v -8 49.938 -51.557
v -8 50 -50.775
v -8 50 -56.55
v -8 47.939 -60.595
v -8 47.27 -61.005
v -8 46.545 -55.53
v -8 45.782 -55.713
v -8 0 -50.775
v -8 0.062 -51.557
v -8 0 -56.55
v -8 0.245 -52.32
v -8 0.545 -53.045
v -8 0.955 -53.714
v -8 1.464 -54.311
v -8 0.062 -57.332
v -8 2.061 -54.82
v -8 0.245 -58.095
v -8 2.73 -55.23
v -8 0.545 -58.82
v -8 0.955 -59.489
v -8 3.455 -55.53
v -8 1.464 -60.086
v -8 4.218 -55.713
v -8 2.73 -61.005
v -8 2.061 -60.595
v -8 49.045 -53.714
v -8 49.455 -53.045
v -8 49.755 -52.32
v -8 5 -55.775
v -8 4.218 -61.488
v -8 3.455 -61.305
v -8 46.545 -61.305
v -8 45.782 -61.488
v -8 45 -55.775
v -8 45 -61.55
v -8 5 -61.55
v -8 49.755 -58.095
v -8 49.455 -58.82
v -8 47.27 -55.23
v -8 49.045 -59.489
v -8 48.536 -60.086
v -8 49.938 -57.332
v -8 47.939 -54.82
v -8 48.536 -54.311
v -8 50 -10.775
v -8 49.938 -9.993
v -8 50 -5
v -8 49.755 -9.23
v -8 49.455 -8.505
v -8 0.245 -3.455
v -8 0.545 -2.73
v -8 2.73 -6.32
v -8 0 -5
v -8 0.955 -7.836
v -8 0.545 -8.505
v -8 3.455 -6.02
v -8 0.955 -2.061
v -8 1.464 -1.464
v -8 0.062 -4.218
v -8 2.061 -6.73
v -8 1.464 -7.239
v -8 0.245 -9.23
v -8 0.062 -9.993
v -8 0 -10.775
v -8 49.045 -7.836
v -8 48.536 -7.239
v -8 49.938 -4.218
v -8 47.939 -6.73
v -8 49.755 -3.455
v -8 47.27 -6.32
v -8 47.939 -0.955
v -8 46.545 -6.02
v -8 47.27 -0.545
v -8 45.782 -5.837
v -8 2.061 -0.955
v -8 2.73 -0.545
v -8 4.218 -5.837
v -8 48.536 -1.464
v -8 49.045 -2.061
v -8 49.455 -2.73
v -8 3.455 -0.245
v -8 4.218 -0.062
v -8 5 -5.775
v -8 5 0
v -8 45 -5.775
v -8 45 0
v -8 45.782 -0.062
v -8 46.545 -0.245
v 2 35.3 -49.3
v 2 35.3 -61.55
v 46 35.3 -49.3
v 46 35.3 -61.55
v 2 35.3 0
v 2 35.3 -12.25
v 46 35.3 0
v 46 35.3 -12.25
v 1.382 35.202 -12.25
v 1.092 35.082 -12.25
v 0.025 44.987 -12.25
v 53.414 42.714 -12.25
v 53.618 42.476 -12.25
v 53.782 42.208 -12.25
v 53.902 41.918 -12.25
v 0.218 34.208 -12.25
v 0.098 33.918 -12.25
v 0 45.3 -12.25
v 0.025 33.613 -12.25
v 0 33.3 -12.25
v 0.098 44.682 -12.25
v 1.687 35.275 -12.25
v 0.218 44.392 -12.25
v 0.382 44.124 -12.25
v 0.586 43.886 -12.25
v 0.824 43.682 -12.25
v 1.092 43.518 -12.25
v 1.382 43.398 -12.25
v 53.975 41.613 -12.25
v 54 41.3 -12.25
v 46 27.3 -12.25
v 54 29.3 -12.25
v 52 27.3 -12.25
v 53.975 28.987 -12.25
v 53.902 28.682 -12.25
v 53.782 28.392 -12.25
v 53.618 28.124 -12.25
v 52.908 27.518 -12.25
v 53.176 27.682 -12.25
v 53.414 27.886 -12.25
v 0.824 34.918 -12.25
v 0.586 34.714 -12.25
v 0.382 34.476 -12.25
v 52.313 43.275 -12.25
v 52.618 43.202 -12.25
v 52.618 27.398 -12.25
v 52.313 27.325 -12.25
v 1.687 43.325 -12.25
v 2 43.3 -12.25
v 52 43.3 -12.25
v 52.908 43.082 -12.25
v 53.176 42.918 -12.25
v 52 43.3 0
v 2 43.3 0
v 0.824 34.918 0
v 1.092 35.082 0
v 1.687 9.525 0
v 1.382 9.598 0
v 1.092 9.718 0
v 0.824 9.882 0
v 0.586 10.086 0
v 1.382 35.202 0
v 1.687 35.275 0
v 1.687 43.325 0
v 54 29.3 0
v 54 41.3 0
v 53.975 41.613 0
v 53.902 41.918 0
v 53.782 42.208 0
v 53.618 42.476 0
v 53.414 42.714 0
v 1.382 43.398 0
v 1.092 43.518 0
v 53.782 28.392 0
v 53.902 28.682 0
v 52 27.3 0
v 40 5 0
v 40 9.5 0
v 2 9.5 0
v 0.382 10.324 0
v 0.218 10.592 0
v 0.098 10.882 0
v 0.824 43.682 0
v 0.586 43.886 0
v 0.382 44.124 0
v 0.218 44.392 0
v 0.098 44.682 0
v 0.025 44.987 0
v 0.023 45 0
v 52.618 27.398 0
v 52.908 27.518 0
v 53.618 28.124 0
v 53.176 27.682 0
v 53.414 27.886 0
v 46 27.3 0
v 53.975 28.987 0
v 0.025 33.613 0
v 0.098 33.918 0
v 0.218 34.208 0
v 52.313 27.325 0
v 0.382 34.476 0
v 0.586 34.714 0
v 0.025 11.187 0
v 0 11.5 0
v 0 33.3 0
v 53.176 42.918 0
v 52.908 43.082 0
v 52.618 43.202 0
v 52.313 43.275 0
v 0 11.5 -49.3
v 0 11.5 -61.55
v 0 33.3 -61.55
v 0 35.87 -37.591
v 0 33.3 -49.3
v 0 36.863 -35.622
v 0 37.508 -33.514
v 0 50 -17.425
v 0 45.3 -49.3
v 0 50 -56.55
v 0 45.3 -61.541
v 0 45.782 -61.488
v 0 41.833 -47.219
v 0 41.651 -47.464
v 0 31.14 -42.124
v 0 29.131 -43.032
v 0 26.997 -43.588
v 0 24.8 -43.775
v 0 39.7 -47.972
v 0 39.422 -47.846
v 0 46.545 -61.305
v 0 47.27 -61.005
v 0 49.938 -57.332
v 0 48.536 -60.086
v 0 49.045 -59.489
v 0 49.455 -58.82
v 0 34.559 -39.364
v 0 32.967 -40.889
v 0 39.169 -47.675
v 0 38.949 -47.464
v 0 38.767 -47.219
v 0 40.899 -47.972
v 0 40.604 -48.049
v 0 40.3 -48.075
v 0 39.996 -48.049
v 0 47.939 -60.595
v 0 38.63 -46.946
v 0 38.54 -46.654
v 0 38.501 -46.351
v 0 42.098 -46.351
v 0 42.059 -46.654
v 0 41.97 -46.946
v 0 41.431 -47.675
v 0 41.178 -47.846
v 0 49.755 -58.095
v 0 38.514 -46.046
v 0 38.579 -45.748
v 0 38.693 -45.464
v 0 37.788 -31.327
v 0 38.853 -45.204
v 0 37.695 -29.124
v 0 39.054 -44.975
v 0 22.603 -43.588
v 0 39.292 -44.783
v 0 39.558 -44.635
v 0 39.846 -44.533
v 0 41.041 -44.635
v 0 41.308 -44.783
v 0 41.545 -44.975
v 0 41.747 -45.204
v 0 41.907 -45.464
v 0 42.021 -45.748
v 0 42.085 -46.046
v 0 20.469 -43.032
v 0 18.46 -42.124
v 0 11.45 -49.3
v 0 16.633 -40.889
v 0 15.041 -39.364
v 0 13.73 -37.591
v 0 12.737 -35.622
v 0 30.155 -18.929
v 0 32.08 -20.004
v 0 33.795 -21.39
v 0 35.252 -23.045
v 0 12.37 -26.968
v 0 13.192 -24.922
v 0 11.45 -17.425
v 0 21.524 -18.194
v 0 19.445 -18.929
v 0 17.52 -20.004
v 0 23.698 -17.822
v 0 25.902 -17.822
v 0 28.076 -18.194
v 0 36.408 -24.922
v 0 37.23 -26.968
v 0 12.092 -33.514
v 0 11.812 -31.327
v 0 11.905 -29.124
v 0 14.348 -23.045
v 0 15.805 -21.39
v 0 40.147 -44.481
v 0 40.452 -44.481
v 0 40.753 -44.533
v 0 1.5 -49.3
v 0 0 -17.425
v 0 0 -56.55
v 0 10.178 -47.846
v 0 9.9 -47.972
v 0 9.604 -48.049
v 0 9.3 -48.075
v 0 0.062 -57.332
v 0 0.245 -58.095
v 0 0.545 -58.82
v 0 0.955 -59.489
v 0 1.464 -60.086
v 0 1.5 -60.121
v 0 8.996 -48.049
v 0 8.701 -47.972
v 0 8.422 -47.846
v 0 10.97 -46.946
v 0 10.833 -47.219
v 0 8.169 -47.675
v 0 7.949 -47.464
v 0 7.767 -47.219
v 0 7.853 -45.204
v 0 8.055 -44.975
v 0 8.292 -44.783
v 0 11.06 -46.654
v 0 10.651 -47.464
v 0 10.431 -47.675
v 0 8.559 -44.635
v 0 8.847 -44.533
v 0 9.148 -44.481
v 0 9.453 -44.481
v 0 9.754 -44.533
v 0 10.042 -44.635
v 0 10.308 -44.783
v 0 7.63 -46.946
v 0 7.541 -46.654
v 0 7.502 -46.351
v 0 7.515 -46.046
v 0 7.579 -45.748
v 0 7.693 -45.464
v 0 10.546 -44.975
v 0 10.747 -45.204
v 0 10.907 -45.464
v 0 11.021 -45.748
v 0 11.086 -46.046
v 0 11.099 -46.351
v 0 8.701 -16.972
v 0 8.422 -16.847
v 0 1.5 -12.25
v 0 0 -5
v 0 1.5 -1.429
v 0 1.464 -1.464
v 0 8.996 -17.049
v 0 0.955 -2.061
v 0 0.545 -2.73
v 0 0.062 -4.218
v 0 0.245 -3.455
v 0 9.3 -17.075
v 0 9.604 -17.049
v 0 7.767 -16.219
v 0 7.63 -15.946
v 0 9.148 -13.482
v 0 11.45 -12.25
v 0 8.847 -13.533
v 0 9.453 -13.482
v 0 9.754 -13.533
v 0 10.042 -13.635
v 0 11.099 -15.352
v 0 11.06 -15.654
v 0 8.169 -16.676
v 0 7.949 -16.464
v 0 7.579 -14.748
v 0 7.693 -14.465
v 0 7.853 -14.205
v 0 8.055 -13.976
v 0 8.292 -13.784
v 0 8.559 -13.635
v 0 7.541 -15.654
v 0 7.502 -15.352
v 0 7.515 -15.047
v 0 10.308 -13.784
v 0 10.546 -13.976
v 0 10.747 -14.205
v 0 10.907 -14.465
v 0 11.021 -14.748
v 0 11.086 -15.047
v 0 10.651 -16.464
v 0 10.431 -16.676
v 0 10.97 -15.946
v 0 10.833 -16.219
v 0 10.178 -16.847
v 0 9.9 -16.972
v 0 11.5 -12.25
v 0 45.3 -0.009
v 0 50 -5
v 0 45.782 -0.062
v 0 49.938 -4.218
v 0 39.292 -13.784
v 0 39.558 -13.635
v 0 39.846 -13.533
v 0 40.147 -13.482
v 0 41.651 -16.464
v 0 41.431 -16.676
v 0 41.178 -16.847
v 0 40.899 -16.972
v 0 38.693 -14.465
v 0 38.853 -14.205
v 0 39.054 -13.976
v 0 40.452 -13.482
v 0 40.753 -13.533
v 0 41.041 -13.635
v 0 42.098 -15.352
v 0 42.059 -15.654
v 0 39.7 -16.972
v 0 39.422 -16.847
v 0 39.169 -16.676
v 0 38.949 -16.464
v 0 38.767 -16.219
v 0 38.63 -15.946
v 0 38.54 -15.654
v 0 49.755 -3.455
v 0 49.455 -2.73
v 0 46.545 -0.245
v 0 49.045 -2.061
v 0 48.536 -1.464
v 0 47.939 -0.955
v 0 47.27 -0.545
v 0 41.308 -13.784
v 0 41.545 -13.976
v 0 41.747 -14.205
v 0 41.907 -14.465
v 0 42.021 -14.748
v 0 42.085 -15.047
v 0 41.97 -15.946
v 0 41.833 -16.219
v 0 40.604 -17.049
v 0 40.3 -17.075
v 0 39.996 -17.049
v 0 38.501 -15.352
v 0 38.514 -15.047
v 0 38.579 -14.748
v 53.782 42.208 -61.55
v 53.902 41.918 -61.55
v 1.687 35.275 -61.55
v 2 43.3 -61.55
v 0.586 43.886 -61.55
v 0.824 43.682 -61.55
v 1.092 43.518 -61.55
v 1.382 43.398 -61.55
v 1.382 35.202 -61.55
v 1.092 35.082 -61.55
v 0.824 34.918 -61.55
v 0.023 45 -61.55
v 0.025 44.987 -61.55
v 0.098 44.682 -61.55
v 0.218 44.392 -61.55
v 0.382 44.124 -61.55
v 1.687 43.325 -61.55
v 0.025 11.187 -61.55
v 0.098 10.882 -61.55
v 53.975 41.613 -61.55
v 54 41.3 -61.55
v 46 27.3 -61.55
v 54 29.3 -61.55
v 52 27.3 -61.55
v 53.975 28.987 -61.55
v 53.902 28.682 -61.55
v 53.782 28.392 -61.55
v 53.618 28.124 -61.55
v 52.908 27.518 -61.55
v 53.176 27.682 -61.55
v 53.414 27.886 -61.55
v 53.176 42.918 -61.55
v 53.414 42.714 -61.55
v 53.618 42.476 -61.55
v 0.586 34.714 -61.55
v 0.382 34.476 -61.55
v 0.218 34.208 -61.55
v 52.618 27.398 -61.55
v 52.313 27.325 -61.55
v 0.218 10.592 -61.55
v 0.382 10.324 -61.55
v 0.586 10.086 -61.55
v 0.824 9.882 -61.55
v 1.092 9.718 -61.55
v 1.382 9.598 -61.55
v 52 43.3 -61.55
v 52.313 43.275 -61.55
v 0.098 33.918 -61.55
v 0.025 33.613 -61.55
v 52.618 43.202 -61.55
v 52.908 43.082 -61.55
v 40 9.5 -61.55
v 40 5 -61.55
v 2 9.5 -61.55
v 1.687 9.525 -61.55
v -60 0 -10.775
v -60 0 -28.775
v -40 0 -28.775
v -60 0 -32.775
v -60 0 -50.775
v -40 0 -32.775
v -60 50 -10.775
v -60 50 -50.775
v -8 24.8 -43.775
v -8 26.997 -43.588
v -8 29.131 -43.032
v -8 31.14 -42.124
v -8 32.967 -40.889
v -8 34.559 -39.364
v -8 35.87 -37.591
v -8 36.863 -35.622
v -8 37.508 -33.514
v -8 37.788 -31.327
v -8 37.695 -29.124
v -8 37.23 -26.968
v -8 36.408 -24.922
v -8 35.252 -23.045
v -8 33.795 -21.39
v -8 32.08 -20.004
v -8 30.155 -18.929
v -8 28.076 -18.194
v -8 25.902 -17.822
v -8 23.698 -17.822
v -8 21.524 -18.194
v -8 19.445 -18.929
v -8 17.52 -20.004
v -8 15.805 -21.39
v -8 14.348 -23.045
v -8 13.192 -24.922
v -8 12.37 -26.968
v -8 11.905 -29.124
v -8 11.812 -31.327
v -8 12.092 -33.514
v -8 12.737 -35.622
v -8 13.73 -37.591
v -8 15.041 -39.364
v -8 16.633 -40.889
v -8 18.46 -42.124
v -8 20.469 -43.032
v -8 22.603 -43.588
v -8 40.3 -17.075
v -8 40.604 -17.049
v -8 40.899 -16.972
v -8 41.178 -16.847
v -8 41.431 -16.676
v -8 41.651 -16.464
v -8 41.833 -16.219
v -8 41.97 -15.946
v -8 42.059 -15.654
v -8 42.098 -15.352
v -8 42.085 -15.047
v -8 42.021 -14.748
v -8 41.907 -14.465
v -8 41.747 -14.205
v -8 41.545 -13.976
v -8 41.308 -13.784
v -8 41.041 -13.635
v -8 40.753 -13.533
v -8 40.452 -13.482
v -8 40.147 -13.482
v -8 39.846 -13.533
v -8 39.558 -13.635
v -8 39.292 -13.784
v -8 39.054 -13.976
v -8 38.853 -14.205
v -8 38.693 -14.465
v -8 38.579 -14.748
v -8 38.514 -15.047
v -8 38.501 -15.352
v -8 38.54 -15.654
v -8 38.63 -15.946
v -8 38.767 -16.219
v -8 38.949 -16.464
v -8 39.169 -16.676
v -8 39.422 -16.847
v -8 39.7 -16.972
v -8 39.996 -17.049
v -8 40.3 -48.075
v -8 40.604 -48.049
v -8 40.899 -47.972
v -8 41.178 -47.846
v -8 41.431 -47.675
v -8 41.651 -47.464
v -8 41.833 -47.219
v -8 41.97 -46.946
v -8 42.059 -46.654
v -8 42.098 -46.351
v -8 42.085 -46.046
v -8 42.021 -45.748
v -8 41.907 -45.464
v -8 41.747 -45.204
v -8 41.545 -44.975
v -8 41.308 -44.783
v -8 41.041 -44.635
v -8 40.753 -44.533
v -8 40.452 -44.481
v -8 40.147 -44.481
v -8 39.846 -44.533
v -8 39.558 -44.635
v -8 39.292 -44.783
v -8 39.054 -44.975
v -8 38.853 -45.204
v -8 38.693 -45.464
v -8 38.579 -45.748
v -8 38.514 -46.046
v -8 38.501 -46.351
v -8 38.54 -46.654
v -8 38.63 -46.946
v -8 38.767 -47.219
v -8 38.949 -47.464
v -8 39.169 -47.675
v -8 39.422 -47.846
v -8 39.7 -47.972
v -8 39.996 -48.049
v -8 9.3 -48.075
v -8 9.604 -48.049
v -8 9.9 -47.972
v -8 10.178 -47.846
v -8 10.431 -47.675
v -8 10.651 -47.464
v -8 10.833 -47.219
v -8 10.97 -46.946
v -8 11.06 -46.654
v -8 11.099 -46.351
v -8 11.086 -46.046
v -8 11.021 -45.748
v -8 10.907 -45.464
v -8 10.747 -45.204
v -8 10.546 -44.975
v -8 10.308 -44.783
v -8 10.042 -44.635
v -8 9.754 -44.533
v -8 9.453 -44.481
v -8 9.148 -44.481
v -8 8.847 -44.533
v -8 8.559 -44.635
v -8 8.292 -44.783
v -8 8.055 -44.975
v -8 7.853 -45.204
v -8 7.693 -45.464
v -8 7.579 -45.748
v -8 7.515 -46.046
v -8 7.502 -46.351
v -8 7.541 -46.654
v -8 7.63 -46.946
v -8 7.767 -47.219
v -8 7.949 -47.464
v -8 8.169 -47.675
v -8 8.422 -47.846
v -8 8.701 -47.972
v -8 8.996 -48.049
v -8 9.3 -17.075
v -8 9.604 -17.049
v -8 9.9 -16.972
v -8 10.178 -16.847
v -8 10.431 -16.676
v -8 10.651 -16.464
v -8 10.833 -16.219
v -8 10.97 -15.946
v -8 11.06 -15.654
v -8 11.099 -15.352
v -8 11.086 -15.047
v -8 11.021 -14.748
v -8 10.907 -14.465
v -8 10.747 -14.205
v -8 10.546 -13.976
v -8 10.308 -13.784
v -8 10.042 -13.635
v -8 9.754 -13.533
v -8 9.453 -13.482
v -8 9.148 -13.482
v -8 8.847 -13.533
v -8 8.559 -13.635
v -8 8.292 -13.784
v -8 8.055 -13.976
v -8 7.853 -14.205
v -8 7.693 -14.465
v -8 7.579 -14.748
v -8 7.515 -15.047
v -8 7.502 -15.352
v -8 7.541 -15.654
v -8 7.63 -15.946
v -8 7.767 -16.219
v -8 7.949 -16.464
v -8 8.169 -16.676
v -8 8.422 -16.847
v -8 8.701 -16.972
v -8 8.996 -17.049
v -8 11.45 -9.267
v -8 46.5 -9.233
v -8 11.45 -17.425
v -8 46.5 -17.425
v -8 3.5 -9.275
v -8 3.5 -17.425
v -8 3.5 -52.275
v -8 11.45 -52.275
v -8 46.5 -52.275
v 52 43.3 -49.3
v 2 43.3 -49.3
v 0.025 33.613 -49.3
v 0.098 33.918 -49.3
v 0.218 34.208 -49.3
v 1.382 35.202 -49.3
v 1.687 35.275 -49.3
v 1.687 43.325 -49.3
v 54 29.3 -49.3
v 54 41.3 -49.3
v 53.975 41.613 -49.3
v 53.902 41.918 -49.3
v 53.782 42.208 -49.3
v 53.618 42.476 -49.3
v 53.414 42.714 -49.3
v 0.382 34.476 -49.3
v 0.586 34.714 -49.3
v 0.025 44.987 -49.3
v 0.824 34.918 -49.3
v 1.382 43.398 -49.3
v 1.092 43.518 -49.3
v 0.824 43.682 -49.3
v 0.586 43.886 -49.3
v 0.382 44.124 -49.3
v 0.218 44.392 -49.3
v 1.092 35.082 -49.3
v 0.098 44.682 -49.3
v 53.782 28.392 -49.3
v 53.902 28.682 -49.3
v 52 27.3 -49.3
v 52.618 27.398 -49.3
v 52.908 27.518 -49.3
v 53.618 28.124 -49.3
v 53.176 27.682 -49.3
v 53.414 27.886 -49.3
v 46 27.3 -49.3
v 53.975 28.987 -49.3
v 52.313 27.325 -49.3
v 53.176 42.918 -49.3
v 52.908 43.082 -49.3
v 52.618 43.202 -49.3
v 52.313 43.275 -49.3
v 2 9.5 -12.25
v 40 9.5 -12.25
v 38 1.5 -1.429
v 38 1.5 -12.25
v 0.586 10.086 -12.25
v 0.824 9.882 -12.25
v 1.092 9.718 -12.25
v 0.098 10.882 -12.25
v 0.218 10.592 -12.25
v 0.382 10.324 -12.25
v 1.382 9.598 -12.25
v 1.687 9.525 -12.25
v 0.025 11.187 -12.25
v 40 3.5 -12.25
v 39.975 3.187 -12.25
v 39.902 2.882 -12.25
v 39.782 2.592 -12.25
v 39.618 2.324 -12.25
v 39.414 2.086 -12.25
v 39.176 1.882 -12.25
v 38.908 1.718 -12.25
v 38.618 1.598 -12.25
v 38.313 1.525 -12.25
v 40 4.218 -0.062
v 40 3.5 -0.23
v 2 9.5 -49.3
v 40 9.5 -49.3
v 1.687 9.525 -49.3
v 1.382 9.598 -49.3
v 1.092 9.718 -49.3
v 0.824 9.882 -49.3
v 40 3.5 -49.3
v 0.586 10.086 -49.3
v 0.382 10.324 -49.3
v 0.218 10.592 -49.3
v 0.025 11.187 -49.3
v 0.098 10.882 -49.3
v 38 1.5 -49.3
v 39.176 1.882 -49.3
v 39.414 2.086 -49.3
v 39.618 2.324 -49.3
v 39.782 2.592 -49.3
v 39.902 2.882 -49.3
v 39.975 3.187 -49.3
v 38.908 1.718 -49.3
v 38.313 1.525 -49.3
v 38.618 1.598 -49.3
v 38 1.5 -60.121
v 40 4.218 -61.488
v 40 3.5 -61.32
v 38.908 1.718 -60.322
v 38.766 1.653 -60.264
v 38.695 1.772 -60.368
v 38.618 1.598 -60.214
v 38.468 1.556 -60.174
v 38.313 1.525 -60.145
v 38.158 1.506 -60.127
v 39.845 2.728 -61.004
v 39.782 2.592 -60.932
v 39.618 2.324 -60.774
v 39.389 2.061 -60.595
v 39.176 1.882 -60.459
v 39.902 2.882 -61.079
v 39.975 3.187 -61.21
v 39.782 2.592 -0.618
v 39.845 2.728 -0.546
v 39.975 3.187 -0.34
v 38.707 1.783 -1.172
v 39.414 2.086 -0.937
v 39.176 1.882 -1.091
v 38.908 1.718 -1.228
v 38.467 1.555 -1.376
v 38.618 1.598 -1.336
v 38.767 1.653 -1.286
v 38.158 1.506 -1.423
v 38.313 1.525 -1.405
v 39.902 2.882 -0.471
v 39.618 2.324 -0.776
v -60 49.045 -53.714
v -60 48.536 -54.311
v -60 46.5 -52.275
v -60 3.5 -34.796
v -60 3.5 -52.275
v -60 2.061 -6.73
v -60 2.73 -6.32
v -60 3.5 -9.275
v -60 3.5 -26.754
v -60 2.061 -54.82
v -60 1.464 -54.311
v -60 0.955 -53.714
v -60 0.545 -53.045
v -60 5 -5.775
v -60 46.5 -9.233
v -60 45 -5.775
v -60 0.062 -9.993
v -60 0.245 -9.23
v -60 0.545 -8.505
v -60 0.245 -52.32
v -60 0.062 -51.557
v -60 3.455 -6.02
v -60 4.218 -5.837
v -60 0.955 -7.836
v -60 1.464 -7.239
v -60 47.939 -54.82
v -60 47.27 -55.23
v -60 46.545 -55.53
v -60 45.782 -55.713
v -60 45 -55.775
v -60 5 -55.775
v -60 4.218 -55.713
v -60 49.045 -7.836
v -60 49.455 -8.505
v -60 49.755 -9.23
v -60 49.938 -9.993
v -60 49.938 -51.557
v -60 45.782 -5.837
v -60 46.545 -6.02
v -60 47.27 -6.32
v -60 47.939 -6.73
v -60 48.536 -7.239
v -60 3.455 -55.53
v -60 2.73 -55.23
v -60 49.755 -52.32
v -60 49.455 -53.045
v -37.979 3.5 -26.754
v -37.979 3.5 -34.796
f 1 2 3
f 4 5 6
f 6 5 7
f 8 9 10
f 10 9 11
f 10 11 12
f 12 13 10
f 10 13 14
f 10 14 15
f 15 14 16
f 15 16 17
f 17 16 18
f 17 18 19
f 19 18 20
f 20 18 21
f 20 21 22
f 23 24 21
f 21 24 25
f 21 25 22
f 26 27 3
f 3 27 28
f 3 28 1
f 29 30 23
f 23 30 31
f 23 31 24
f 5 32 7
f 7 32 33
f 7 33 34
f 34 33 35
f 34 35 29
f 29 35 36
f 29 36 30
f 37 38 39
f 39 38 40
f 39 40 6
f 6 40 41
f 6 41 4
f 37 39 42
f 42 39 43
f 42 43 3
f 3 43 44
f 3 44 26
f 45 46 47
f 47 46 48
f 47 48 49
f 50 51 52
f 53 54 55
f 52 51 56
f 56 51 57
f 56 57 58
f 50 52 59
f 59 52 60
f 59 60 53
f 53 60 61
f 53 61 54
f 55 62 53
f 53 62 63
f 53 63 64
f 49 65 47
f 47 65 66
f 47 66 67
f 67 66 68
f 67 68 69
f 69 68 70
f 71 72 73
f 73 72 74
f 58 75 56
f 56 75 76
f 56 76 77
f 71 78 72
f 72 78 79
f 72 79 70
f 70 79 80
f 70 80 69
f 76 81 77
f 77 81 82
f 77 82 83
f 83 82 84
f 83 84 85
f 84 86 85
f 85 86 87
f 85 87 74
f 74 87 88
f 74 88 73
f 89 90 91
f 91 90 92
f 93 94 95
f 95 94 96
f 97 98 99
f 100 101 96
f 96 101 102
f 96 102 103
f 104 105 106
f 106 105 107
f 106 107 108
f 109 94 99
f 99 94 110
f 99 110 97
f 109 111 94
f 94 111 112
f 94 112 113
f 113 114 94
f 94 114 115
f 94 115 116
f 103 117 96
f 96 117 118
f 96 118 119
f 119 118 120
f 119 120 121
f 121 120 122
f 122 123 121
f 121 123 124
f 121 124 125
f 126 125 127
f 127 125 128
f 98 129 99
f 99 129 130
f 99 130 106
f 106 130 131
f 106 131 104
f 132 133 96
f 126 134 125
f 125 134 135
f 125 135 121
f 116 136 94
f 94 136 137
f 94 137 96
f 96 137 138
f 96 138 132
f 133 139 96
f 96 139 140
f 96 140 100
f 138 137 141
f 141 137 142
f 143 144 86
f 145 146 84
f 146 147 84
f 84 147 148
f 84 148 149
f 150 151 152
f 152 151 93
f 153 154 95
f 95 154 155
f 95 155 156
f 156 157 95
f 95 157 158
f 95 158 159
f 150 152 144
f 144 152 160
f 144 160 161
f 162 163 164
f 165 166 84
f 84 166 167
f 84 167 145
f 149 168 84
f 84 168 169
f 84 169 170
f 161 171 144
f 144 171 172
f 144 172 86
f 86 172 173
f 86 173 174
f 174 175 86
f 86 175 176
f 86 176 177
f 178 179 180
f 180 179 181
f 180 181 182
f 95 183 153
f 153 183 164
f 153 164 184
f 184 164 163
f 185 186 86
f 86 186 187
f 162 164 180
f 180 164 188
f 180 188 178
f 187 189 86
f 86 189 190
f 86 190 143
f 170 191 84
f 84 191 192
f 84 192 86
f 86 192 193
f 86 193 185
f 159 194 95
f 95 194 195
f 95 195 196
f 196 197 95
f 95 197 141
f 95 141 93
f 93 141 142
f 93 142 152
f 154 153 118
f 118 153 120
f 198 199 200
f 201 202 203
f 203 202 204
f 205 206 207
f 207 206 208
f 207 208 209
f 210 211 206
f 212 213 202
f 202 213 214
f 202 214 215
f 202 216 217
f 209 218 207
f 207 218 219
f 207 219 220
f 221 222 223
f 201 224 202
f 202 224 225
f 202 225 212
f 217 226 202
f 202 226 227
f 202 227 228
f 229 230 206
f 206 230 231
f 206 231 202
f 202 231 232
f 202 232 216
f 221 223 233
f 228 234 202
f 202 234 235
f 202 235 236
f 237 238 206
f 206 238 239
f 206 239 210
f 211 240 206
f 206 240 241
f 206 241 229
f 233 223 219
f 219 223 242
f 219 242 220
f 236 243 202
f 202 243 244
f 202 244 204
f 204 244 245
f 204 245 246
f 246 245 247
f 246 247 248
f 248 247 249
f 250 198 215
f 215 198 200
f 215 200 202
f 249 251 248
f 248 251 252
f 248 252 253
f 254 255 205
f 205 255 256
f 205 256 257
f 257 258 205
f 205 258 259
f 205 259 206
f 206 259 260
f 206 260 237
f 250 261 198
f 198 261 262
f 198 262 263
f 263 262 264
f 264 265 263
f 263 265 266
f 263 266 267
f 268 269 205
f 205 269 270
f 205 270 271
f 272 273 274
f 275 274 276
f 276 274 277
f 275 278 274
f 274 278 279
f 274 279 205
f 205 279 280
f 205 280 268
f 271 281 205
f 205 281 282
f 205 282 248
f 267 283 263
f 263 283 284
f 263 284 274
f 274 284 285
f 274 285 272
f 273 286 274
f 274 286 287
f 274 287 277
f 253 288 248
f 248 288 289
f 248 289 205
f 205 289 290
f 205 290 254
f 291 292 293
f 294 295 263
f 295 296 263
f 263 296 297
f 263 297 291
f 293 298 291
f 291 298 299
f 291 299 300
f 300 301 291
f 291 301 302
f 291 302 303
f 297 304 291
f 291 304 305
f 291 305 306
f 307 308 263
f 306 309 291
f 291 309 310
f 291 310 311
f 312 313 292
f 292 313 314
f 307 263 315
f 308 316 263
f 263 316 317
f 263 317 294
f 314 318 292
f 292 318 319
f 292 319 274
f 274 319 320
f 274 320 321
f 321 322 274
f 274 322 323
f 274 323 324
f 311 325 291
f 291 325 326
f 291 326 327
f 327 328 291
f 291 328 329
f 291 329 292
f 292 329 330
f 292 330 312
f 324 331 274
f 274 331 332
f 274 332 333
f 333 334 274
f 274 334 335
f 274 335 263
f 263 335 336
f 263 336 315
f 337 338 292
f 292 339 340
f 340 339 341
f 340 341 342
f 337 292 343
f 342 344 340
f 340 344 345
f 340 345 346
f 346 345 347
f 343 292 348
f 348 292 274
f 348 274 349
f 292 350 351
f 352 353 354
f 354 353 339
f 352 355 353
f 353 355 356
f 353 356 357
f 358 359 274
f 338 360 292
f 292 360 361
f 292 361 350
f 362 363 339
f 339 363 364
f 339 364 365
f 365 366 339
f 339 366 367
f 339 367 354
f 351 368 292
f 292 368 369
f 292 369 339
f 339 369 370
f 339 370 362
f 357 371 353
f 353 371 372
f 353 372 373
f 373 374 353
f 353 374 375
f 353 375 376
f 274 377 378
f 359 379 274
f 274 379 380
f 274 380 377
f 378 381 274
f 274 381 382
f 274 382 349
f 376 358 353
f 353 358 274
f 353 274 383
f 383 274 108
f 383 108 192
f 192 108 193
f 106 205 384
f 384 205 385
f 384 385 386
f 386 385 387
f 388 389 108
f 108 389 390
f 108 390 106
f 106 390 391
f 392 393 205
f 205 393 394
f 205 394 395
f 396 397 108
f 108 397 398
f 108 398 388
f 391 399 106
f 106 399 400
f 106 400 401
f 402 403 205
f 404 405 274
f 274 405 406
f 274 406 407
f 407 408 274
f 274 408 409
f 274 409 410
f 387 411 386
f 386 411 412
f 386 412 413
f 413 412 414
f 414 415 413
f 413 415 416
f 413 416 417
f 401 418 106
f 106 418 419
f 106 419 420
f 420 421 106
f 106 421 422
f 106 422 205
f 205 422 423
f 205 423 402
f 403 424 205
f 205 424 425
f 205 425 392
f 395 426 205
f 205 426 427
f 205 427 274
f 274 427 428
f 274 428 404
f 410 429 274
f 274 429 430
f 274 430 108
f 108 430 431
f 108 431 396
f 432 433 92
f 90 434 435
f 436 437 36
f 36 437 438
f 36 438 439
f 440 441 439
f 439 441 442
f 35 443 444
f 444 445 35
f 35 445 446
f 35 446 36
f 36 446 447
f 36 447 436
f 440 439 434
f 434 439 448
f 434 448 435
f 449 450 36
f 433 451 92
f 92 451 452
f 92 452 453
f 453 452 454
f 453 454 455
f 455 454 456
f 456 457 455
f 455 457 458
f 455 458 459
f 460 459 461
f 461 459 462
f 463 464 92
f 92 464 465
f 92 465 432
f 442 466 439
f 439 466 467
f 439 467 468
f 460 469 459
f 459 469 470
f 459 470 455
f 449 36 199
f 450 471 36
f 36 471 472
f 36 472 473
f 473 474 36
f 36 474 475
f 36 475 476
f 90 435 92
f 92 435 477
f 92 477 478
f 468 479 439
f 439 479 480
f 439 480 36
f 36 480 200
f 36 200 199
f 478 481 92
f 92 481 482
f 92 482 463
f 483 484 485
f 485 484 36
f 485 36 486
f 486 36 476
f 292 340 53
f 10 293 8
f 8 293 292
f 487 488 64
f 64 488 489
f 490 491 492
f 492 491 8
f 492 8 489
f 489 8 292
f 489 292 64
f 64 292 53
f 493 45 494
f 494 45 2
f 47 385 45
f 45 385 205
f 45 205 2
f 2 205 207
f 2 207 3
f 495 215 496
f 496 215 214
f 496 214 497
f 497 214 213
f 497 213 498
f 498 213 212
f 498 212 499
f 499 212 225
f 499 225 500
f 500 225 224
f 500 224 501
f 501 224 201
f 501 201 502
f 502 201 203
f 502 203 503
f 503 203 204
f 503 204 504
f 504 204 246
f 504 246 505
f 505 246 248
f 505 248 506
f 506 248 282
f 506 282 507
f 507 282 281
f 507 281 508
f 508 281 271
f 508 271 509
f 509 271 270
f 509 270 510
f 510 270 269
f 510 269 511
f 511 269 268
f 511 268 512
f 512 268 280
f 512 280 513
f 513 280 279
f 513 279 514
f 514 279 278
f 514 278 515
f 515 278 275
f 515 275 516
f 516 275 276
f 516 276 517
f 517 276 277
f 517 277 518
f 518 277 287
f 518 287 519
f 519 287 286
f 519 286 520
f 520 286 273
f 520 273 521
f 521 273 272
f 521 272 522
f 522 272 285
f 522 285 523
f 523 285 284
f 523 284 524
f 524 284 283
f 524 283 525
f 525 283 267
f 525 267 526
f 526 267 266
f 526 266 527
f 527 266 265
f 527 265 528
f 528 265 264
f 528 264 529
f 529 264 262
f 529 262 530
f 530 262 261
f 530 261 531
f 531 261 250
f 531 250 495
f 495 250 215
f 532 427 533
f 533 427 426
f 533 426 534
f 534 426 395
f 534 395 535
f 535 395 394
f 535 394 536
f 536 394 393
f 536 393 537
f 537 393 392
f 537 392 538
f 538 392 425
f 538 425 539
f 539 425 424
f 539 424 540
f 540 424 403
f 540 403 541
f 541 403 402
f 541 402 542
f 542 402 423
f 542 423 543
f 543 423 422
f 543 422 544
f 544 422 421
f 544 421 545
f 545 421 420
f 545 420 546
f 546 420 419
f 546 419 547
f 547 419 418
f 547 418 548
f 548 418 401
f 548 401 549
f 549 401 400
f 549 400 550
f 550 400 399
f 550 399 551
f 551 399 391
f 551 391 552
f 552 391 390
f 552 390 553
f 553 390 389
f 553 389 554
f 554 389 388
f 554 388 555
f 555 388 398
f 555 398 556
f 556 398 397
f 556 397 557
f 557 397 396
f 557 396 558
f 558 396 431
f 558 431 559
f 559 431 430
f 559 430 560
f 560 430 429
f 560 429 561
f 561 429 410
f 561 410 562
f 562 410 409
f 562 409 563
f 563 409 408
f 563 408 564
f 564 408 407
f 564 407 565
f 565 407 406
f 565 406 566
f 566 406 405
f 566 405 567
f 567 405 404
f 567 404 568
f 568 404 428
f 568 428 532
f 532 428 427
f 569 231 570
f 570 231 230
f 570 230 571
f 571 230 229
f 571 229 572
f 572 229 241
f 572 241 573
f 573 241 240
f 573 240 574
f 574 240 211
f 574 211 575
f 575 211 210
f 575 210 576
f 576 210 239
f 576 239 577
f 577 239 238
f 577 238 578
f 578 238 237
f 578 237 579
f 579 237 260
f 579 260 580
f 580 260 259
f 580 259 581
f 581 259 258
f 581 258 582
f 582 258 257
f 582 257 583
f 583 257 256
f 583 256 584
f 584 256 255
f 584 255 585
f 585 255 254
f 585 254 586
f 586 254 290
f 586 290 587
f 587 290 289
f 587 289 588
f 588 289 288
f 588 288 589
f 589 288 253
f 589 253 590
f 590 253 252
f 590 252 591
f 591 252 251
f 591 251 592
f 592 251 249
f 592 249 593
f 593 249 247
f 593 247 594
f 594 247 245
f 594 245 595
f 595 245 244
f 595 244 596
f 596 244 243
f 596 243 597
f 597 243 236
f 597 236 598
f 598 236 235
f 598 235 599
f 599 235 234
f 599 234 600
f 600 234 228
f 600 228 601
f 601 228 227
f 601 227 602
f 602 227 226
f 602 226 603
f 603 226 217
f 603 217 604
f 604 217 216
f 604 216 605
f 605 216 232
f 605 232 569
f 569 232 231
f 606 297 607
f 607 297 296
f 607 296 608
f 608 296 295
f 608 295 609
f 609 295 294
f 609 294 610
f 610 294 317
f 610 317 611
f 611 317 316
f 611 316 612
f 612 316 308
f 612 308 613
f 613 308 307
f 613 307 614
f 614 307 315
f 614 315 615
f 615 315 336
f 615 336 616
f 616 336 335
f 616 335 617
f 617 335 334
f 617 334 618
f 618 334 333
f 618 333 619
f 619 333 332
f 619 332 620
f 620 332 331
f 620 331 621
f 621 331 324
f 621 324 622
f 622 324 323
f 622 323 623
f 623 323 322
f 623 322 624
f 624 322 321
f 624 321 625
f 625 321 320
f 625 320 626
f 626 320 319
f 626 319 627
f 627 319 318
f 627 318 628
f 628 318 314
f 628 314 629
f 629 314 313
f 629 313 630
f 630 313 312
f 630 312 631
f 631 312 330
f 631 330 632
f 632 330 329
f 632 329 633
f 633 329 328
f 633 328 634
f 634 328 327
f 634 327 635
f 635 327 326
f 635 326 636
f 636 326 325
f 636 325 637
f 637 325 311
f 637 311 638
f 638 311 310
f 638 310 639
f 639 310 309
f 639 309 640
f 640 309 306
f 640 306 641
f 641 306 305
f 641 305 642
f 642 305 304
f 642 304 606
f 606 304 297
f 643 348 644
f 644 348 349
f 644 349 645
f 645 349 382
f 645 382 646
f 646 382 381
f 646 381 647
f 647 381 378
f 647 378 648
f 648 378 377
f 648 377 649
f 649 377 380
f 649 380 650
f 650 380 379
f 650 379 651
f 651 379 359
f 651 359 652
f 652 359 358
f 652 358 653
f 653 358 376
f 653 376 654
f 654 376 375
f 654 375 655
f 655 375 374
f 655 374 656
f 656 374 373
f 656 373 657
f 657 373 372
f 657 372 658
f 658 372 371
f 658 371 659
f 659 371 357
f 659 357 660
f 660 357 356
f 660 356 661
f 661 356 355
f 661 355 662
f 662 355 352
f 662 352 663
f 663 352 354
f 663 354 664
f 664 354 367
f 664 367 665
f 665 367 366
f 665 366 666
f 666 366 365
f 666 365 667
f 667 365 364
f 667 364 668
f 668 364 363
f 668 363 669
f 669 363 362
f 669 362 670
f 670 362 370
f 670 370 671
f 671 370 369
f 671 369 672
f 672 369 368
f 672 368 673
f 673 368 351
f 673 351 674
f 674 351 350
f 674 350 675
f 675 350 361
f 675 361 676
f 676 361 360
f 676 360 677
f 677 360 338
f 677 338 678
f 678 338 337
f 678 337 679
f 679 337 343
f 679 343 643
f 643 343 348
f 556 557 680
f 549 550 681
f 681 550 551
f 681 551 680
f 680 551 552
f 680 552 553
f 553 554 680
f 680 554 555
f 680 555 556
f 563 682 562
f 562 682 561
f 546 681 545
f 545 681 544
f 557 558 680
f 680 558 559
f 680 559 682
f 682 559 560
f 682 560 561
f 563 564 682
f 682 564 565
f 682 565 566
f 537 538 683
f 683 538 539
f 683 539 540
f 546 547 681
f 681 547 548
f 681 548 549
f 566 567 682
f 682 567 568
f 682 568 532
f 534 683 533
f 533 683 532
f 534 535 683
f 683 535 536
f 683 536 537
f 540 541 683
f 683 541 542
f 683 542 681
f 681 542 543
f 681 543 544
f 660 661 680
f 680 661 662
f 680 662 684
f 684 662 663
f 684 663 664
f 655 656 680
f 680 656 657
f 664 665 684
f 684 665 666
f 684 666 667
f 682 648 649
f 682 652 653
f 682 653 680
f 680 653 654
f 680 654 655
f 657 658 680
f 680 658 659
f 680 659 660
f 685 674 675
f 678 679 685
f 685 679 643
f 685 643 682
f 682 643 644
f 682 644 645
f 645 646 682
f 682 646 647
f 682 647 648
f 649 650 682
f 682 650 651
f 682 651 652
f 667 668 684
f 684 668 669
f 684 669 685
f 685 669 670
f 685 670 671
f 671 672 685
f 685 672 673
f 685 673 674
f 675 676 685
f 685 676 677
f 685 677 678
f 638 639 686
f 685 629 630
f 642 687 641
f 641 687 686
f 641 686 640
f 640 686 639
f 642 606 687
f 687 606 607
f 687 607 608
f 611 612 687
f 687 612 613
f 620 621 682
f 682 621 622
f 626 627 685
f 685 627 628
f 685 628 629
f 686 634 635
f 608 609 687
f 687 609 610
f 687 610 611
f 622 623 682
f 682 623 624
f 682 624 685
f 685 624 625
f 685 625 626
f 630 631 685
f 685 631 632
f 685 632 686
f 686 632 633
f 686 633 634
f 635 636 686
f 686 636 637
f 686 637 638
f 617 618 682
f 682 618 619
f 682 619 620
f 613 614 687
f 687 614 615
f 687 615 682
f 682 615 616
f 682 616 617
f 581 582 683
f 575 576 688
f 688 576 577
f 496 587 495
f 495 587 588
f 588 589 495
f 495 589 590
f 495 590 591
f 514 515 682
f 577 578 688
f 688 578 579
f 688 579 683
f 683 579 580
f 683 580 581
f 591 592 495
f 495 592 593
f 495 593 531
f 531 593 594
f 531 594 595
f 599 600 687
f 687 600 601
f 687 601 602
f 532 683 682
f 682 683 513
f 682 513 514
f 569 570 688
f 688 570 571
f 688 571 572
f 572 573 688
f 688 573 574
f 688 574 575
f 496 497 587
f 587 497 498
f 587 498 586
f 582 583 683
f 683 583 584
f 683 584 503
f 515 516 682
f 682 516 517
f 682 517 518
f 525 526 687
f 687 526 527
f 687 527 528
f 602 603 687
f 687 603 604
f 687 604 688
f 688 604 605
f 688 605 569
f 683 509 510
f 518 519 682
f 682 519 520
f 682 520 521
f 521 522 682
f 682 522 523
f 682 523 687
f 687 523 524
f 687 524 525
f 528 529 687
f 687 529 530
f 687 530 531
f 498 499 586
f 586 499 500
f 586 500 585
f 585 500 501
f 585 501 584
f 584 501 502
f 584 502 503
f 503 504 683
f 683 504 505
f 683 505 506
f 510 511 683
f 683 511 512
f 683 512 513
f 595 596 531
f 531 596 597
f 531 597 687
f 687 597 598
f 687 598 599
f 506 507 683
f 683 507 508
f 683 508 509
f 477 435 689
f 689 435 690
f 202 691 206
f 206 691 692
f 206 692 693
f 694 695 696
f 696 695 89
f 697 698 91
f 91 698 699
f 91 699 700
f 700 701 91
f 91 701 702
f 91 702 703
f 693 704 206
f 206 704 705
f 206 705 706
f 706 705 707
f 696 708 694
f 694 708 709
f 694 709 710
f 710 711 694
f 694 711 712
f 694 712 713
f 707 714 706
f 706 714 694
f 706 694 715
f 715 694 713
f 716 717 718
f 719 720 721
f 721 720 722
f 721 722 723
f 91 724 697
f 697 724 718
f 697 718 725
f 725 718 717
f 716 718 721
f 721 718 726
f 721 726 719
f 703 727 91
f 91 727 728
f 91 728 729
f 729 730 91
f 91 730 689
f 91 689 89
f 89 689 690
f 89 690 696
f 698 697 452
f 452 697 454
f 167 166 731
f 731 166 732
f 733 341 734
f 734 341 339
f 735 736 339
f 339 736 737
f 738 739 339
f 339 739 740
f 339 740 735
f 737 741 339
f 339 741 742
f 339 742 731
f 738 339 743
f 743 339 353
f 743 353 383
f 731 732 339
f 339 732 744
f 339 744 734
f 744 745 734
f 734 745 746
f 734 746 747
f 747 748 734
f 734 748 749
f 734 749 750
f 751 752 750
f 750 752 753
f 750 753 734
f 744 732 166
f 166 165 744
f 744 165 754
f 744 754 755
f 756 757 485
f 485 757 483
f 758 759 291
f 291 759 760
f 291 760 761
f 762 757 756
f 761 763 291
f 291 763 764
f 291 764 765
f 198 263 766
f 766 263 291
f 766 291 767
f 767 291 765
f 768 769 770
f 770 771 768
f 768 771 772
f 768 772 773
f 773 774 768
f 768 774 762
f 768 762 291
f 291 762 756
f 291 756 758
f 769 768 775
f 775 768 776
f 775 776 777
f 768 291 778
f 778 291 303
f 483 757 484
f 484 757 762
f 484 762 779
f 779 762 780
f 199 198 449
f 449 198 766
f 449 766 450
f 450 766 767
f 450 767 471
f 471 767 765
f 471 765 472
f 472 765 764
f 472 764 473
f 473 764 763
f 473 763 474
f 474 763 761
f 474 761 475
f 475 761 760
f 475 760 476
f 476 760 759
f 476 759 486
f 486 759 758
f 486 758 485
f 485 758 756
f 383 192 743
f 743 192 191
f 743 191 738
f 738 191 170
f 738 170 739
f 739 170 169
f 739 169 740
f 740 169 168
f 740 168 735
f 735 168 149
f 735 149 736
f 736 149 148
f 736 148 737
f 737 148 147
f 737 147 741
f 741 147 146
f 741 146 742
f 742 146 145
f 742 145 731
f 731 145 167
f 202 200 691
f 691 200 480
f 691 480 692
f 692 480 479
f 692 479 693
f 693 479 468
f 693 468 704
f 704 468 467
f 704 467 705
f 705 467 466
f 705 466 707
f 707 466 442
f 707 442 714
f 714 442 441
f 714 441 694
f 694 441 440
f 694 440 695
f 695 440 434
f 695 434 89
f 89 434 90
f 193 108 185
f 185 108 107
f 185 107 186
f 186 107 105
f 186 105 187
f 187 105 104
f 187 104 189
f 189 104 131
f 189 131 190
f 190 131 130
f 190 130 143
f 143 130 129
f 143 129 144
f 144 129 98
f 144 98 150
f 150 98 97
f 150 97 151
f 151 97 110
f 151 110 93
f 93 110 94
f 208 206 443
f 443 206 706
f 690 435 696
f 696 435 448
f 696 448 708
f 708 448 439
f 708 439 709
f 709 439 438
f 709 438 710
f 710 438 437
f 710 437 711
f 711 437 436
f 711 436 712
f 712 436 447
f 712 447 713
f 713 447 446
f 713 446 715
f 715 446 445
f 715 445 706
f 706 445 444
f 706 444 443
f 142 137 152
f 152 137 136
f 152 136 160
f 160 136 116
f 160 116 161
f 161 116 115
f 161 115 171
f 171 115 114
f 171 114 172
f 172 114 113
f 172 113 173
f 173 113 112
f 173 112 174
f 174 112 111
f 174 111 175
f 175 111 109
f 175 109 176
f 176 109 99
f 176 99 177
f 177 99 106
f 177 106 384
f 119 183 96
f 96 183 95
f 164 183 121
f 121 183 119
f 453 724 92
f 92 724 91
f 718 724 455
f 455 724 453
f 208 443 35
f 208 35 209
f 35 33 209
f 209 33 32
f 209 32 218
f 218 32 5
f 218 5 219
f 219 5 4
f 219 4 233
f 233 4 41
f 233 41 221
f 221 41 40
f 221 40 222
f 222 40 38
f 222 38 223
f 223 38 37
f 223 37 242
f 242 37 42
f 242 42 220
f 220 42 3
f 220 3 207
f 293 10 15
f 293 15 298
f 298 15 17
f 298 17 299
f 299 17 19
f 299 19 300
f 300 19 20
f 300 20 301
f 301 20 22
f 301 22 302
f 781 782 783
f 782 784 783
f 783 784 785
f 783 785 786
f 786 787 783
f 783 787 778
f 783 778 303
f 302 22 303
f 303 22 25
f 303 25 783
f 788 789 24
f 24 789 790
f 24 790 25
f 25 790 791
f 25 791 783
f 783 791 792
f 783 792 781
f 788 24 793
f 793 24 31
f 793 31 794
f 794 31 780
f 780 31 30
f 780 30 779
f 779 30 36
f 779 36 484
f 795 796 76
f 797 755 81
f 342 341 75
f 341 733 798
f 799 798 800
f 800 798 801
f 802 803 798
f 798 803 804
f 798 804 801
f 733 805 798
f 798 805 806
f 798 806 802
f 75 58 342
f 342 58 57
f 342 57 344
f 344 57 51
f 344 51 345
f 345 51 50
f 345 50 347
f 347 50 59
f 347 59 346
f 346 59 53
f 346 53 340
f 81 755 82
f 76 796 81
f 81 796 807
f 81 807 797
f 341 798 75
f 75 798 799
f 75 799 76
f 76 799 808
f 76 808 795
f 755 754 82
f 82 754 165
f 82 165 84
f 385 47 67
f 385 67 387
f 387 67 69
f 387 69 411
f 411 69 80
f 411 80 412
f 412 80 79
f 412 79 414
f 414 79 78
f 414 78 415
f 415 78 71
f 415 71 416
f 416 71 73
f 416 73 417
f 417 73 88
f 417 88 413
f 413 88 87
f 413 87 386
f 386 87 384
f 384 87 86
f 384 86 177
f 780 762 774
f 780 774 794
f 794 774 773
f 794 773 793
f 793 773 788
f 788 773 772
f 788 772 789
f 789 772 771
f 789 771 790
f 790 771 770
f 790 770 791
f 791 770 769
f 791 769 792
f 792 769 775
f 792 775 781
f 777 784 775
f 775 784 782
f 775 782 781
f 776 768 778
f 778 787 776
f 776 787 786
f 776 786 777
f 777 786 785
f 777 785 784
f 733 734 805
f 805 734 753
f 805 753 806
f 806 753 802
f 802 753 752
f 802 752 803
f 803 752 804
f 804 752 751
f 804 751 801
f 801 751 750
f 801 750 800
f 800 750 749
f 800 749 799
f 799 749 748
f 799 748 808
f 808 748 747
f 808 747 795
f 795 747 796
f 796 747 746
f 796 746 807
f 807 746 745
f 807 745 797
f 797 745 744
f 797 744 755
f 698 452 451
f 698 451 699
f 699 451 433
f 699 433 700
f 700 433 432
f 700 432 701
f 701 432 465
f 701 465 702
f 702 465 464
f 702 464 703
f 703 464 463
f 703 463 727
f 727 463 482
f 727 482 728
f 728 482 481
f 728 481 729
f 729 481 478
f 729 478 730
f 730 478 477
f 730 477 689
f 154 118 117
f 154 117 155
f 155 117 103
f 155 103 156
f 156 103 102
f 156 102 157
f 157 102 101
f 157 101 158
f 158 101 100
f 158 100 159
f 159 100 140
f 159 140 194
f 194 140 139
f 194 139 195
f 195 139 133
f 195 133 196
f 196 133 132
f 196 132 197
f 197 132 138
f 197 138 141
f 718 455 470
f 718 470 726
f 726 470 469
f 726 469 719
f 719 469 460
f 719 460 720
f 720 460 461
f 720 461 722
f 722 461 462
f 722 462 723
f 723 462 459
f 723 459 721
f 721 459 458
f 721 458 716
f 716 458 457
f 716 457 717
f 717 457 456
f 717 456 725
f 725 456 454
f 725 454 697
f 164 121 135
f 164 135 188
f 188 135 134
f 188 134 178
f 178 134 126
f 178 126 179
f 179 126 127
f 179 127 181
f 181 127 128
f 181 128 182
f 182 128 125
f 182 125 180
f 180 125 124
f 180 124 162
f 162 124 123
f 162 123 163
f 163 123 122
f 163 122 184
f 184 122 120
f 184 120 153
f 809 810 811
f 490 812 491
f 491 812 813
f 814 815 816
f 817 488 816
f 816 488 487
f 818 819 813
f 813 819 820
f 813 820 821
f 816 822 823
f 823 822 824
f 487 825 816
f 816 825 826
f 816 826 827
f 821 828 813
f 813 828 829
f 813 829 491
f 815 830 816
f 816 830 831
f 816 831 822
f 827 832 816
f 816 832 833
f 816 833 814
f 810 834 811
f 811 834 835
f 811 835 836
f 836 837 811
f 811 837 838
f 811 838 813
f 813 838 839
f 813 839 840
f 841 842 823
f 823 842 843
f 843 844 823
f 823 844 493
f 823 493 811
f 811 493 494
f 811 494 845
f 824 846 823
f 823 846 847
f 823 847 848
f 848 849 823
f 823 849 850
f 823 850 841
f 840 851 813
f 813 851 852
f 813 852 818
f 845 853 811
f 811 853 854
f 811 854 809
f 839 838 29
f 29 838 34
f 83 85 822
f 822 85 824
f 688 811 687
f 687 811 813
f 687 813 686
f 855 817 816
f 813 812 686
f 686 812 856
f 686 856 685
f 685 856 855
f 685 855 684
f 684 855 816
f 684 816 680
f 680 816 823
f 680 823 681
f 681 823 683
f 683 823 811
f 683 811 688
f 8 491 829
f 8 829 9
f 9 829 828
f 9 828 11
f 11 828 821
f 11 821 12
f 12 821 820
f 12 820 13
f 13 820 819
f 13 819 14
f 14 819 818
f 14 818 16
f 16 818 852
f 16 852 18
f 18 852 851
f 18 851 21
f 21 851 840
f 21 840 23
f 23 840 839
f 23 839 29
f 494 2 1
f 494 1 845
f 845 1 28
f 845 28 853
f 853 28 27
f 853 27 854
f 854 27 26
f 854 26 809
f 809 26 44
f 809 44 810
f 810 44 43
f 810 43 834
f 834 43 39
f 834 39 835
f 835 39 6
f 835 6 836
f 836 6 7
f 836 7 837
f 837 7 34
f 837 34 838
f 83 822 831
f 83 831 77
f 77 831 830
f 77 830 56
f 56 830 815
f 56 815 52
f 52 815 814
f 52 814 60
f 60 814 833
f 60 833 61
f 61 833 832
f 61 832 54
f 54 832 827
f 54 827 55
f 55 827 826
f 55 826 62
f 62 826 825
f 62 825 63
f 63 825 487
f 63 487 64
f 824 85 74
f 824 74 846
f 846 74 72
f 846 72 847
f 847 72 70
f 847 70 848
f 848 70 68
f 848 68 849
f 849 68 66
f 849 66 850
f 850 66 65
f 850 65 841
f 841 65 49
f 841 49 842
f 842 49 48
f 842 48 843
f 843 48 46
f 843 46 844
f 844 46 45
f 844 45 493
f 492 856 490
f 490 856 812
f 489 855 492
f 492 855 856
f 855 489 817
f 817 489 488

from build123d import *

# Parameters (mm, degrees)
SKETCH1_W                 = 12.25
SKETCH1_H                 = 8
BOSS_EXTRUDE1_DEPTH       = 54
BOSS_EXTRUDE1_2_DEPTH     = 54
SKETCH1_7_W               = 12.25
SKETCH1_7_H               = 8
BOSS_EXTRUDE7_DEPTH       = 40
BOSS_EXTRUDE7_2_DEPTH     = 40
BOSS_EXTRUDE2_START       = -8
BOSS_EXTRUDE2_OUTLINE_W   = 61.55
BOSS_EXTRUDE2_OUTLINE_H   = 50
BOSS_EXTRUDE2_OUTLINE_R   = 1.8
BOSS_EXTRUDE2_OUTLINE_R_2 = 13
BOSS_EXTRUDE2_DEPTH       = 8
FILLET1_R                 = 2
SKETCH2_W                 = 8
SKETCH2_H                 = 12.25
BOSS_EXTRUDE3_DEPTH       = 8
FILLET2_R                 = 5
FILLET3_R                 = 2
SKETCH3_W                 = 50
SKETCH3_H                 = 50
BOSS_EXTRUDE4_DEPTH       = 52
FILLET7_R                 = 5
SKETCH4_W                 = 20
SKETCH4_H                 = 4
CUT_EXTRUDE1_DEPTH        = 3.5
CUT_EXTRUDE1_TAPER        = -30


# Read off the part's stored shape, not the designer's step: Boss-Extrude2
with BuildPart() as part:
    # Sketch1 → Boss-Extrude1 (new body)
    with BuildSketch(Plane(origin=(0, 0, 0), x_dir=(0, 0, -1), z_dir=(1, 0, 0))):
        with Locations((6.125, 39.3)):
            Rectangle(SKETCH1_W, SKETCH1_H)
    extrude(amount=BOSS_EXTRUDE1_DEPTH)



with BuildPart() as body_2:
    # Sketch1 → Boss-Extrude1 2 (new body)
    with BuildSketch(Plane(origin=(0, 0, 0), x_dir=(0, 0, -1), z_dir=(1, 0, 0))):
        with Locations((55.425, 39.3)):
            Rectangle(SKETCH1_W, SKETCH1_H)
    extrude(amount=BOSS_EXTRUDE1_2_DEPTH)


with BuildPart() as body_3:
    # Sketch1<7> → Boss-Extrude7 (new body)
    with BuildSketch(Plane(origin=(0, 0, 0), x_dir=(0, 0, -1), z_dir=(1, 0, 0))):
        with Locations((6.125, 5.5)):
            Rectangle(SKETCH1_7_W, SKETCH1_7_H)
    extrude(amount=BOSS_EXTRUDE7_DEPTH)


with BuildPart() as body_4:
    # Sketch1<7> → Boss-Extrude7 2 (new body)
    with BuildSketch(Plane(origin=(0, 0, 0), x_dir=(0, 0, -1), z_dir=(1, 0, 0))):
        with Locations((55.425, 5.5)):
            Rectangle(SKETCH1_7_W, SKETCH1_7_H)
    extrude(amount=BOSS_EXTRUDE7_2_DEPTH)


with BuildPart() as part_1:
    add(part.part)

    add(body_2.part)  # Boss-Extrude2 merges body 2

    add(body_3.part)  # Boss-Extrude2 merges body 3

    add(body_4.part)  # Boss-Extrude2 merges body 4
    # Boss-Extrude2 outline → Boss-Extrude2 (add)
    with BuildSketch(Plane(origin=(0, 0, 0), x_dir=(0, 0, -1), z_dir=(1, 0, 0)).offset(BOSS_EXTRUDE2_START)):
        with Locations((30.775, 25)):
            Rectangle(BOSS_EXTRUDE2_OUTLINE_W, BOSS_EXTRUDE2_OUTLINE_H)
        with Locations((15.275219356, 9.300219356)):
            Circle(BOSS_EXTRUDE2_OUTLINE_R, mode=Mode.SUBTRACT)
        with Locations((46.274780644, 9.300219356)):
            Circle(BOSS_EXTRUDE2_OUTLINE_R, mode=Mode.SUBTRACT)
        with Locations((30.775, 24.8)):
            Circle(BOSS_EXTRUDE2_OUTLINE_R_2, mode=Mode.SUBTRACT)
        with Locations((15.275219356, 40.299780644)):
            Circle(BOSS_EXTRUDE2_OUTLINE_R, mode=Mode.SUBTRACT)
        with Locations((46.274780644, 40.299780644)):
            Circle(BOSS_EXTRUDE2_OUTLINE_R, mode=Mode.SUBTRACT)
    extrude(amount=BOSS_EXTRUDE2_DEPTH)

    # Fillet1
    fillet1_edges = [part_1.edges().sort_by_distance(p)[0] for p in [
        (0, 35.3, -55.425),
        (0, 43.3, -55.425),
        (0, 35.3, -6.125),
        (0, 9.5, -6.125),
        (0, 43.3, -6.125),
        (0, 9.5, -55.425),
    ]]
    fillet(fillet1_edges, radius=FILLET1_R)

    # Sketch2 → Boss-Extrude3 (add)
    with BuildSketch(Plane.XZ.offset(-35.3)):
        with Locations((50, -6.125)):
            Rectangle(SKETCH2_W, SKETCH2_H)
        with Locations((50, -55.425)):
            Rectangle(SKETCH2_W, SKETCH2_H)
    extrude(amount=BOSS_EXTRUDE3_DEPTH)

    # Fillet2
    fillet2_edges = [part_1.edges().sort_by_distance(p)[0] for p in [
        (-4, 50, -61.55),
        (-4, 0, -61.55),
        (-4, 0, 0),
        (-4, 50, 0),
    ]]
    fillet(fillet2_edges, radius=FILLET2_R)

    # Fillet3
    fillet3_edges = [part_1.edges().sort_by_distance(p)[0] for p in [
        (54, 43.3, -6.125),
        (54, 27.3, -6.125),
        (54, 27.3, -55.425),
        (40, 1.5, -54.710357107),
        (40, 1.5, -6.839642893),
        (54, 43.3, -55.425),
    ]]
    fillet(fillet3_edges, radius=FILLET3_R)

    # Sketch3 → Boss-Extrude4 (add)
    with BuildSketch(Plane.ZY.offset(8)):
        with Locations((-30.775, 25)):
            Rectangle(SKETCH3_W, SKETCH3_H)
        Polygon((-52.275, 46.5), (-9.232535772, 46.5), (-9.275, 3.5), (-52.275, 3.5), align=None, mode=Mode.SUBTRACT)
    extrude(amount=BOSS_EXTRUDE4_DEPTH)

    # Fillet7
    fillet7_edges = [part_1.edges().sort_by_distance(p)[0] for p in [
        (-34, 50, -55.775),
        (-34, 0, -55.775),
        (-34, 0, -5.775),
        (-34, 50, -5.775),
    ]]
    fillet(fillet7_edges, radius=FILLET7_R)

    # Sketch4 → Cut-Extrude1 (cut)
    with BuildSketch(Plane.XZ):
        with Locations((-50, -30.775)):
            Rectangle(SKETCH4_W, SKETCH4_H)
    extrude(amount=-CUT_EXTRUDE1_DEPTH, taper=CUT_EXTRUDE1_TAPER, mode=Mode.SUBTRACT)


solid = part_1.part
